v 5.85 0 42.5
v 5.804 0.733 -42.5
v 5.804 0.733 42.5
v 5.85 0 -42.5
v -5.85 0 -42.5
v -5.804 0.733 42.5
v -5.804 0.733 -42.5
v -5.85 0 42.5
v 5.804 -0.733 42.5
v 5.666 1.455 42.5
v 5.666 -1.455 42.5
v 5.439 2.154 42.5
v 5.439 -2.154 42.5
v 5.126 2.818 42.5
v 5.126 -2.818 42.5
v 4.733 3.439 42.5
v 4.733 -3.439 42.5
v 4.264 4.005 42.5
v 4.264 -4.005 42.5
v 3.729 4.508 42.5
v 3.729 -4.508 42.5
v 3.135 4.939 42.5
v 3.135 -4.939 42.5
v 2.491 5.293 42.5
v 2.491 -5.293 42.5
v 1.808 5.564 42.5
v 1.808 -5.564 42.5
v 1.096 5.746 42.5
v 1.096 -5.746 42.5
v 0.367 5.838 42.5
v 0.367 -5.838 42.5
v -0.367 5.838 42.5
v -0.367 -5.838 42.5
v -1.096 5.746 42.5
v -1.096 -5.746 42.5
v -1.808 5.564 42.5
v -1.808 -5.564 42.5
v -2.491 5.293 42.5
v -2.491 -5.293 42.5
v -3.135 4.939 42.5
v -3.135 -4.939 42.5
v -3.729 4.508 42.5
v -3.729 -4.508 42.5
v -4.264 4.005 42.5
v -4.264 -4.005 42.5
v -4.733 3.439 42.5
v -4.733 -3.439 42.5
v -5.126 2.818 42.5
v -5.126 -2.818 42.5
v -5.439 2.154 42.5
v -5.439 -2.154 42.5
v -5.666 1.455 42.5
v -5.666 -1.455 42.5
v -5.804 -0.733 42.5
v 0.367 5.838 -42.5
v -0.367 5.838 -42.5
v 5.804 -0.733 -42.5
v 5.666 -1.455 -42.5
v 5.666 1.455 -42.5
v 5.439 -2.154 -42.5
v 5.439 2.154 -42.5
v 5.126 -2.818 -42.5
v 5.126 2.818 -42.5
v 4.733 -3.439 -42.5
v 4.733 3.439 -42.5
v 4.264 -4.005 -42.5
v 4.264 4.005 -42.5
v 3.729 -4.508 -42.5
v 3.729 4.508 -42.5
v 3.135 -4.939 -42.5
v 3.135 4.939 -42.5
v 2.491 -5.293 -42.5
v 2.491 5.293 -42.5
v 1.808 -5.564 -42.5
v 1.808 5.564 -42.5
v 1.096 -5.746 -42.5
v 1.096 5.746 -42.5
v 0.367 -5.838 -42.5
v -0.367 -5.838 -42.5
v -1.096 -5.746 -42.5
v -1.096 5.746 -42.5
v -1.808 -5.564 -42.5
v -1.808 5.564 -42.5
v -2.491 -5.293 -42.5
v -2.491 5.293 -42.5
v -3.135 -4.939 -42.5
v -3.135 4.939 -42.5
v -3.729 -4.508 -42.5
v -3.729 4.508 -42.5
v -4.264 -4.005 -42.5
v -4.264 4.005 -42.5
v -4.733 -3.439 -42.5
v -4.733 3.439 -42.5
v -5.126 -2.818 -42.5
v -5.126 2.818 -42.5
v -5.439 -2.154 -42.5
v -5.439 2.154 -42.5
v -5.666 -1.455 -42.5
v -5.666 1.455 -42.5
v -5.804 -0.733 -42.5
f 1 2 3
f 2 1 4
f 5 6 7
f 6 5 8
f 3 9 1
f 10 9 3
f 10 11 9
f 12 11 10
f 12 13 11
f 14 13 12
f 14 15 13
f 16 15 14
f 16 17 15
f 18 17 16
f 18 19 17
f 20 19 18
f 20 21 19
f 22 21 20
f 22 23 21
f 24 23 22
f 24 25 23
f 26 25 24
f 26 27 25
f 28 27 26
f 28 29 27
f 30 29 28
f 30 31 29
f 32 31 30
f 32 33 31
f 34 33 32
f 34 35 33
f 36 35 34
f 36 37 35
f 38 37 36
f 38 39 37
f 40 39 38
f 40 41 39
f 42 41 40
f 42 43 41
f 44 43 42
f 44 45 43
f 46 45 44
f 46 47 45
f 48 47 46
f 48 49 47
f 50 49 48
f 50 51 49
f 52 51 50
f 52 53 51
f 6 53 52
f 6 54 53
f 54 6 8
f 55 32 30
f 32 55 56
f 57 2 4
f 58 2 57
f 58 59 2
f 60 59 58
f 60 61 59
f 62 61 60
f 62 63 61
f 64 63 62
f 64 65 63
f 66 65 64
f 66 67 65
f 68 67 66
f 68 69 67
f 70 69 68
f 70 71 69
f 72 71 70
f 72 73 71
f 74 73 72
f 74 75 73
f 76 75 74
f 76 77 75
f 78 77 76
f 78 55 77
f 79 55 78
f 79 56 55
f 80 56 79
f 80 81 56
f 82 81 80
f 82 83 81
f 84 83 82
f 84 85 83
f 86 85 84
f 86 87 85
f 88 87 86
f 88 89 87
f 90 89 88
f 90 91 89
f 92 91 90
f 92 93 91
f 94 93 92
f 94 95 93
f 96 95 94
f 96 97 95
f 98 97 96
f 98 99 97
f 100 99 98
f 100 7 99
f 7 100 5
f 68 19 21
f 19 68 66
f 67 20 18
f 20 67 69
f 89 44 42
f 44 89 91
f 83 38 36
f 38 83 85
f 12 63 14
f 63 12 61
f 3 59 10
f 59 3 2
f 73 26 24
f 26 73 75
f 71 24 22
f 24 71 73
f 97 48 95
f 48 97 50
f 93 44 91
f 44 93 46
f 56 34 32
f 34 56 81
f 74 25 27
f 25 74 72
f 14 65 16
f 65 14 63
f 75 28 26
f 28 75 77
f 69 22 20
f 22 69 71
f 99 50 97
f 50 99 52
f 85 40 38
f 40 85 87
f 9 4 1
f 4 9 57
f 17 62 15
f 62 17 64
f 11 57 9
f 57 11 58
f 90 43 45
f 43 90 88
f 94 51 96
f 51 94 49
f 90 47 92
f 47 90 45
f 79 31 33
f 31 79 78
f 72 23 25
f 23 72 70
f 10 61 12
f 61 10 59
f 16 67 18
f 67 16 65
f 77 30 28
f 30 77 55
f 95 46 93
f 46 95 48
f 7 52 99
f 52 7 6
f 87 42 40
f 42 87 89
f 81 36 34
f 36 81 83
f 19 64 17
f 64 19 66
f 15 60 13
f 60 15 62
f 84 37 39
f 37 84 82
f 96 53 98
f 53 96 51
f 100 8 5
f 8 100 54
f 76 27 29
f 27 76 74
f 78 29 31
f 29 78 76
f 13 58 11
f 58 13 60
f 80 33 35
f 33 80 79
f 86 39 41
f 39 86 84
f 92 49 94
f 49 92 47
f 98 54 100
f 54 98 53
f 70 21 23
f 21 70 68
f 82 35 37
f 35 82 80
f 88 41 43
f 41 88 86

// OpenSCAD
$fn = 50;


difference() {
	union() {
		translate(v = [0, 0, -42.5000000000]) {
			cylinder(h = 85, r = 5.8500000000);
		}
	}
	union() {
		translate(v = [0, 0, -100.0000000000]) {
			cylinder(h = 200, r = 0);
		}
	}
}
